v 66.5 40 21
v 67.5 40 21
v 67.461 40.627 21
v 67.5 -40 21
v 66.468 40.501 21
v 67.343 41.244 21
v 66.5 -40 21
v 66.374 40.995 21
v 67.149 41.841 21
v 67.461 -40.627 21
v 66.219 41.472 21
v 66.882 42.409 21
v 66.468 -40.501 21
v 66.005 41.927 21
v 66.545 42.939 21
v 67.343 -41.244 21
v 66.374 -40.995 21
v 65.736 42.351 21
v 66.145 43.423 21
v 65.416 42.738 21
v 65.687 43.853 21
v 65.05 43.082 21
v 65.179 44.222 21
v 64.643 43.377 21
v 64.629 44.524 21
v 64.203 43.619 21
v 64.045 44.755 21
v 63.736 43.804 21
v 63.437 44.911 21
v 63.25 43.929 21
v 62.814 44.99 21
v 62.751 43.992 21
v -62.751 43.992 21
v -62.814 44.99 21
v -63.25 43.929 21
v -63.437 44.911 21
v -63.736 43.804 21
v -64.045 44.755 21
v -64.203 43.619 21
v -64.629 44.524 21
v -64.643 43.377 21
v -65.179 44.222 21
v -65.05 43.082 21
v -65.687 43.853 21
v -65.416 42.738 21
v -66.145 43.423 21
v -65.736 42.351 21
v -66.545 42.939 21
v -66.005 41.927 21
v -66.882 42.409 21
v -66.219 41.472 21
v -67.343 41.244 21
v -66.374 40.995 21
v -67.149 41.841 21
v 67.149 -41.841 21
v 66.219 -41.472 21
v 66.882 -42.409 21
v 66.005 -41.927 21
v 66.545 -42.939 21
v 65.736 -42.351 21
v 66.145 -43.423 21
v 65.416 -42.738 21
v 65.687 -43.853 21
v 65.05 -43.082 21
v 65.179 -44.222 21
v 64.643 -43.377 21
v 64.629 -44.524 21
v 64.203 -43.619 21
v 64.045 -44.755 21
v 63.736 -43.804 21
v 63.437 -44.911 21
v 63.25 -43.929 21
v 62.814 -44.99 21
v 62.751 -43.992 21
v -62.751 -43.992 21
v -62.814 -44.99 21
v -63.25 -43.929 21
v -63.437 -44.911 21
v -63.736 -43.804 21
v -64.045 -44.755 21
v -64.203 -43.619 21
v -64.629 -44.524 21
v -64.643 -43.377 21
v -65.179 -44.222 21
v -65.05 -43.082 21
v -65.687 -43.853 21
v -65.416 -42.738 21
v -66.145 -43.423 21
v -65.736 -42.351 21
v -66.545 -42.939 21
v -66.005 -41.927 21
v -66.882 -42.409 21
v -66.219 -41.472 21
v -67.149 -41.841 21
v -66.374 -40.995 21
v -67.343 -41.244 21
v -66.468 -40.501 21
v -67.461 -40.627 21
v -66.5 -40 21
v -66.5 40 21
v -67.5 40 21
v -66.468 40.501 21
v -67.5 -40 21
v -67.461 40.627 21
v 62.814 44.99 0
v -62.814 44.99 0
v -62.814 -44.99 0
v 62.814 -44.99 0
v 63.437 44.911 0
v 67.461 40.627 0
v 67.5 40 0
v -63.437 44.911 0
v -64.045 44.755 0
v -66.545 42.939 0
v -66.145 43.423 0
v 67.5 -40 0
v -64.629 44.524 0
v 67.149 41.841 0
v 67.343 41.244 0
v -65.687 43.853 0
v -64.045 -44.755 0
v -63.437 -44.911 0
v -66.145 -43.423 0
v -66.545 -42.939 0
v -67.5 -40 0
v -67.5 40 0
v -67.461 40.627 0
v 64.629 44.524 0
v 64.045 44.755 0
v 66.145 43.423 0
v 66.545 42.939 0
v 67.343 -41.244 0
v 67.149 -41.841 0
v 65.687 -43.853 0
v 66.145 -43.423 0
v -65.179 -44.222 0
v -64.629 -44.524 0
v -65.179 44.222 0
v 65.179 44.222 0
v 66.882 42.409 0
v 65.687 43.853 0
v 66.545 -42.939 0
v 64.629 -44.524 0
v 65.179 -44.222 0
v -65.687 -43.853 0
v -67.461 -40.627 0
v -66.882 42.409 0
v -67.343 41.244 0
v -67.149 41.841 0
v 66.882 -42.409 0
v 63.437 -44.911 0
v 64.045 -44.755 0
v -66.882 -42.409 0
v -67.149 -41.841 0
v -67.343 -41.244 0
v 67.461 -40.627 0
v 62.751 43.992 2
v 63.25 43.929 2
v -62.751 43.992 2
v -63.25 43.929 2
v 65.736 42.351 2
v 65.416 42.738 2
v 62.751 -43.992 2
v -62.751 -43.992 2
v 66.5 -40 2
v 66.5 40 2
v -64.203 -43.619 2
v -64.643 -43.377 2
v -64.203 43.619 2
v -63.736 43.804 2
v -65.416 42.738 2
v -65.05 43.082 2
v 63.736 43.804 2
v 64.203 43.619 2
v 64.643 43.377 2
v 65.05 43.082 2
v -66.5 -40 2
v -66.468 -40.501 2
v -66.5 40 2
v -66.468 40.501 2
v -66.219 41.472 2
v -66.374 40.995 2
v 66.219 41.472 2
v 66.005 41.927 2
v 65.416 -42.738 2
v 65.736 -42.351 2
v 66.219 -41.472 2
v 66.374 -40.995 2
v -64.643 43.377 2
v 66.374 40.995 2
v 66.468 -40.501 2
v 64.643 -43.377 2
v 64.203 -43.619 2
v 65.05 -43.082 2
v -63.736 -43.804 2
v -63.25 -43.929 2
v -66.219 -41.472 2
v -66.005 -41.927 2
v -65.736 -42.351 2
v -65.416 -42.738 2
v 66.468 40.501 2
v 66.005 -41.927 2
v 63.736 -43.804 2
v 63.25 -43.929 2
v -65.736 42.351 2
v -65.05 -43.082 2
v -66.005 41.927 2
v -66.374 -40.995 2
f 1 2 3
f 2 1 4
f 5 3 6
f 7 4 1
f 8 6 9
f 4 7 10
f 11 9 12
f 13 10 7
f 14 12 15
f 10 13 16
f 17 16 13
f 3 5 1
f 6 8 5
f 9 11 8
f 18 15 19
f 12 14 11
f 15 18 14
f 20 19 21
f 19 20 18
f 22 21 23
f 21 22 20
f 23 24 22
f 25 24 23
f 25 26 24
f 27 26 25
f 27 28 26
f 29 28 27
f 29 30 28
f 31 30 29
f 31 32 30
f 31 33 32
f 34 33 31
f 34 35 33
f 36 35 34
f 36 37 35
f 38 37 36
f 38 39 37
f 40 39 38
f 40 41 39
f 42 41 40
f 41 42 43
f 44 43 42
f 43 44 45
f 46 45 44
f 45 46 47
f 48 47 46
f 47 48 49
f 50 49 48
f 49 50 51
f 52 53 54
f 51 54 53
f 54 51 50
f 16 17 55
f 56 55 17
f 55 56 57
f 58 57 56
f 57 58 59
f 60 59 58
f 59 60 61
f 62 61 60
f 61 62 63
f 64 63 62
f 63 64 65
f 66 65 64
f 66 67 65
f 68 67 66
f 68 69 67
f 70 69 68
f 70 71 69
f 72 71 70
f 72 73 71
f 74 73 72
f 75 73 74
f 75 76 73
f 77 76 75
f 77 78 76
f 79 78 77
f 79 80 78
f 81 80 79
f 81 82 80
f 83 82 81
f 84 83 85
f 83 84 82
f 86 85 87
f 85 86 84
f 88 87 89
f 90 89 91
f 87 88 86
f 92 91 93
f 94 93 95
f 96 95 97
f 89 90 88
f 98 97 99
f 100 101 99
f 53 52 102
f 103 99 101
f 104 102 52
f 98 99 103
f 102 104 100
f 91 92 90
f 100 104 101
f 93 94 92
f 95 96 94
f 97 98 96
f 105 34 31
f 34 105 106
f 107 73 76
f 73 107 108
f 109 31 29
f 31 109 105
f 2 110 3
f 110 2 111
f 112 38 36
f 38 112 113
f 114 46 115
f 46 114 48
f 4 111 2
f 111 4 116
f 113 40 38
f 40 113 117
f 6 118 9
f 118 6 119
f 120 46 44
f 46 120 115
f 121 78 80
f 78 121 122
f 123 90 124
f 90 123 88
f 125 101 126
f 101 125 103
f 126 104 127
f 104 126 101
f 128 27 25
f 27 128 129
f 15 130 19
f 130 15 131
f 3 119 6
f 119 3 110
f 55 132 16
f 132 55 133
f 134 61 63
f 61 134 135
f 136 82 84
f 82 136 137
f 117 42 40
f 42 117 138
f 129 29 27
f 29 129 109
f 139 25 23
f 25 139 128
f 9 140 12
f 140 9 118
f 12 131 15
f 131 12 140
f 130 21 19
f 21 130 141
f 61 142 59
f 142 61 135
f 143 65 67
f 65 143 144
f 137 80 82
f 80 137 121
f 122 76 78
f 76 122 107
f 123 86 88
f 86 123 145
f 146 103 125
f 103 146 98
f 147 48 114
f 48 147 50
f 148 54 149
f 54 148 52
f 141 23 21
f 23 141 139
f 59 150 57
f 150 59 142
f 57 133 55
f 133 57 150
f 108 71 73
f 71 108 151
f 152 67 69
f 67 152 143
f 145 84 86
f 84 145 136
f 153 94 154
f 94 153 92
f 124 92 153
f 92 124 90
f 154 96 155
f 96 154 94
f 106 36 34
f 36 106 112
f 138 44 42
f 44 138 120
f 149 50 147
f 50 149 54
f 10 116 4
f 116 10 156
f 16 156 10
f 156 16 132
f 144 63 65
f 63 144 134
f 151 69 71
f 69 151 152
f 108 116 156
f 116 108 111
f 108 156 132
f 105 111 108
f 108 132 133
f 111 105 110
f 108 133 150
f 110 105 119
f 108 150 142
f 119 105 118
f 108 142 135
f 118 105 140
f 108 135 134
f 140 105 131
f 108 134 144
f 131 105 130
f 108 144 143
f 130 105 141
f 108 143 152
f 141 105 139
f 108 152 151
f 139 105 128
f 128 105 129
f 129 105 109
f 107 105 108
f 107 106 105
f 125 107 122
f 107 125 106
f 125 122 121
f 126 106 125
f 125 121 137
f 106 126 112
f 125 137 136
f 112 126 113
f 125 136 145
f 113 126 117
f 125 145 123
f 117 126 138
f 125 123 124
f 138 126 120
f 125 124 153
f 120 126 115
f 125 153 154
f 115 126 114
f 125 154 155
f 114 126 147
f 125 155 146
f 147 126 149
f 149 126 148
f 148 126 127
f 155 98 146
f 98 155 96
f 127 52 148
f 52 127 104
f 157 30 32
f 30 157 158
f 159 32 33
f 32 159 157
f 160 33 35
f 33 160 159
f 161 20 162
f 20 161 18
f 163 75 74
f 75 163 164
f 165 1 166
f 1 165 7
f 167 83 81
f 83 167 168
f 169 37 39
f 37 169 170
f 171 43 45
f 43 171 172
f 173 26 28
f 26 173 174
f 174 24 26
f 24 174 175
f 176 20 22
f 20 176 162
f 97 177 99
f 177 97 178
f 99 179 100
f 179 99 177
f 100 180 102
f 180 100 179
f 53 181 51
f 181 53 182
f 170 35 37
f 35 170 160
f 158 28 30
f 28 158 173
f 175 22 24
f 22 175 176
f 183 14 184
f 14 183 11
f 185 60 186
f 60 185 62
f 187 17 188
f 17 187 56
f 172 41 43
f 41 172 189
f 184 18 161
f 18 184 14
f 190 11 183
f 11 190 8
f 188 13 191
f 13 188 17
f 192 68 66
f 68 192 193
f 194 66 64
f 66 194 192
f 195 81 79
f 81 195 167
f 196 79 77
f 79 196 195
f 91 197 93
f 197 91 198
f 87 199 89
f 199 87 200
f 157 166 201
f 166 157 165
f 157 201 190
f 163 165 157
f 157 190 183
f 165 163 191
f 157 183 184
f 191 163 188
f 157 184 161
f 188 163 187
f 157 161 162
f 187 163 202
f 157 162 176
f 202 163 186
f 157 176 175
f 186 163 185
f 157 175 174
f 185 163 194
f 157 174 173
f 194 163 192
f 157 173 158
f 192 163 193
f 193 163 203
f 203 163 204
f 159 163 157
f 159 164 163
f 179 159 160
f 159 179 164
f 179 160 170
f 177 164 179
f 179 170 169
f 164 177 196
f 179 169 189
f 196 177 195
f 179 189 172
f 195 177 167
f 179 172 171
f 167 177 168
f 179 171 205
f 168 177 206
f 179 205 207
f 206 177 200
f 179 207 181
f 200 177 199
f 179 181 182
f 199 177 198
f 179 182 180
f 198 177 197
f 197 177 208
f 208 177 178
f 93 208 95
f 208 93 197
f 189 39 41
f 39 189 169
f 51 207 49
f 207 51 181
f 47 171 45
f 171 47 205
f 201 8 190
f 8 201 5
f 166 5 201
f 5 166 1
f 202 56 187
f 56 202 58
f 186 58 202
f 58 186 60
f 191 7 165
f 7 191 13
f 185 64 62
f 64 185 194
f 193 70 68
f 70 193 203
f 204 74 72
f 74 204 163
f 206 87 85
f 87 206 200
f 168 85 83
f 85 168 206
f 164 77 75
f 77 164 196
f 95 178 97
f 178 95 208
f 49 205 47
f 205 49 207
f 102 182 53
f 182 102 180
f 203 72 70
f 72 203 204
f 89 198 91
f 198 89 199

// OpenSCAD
$fn = 50;


difference() {
	union() {
		hull() {
			translate(v = [-62.5000000000, 40.0000000000, 0]) {
				cylinder(h = 21, r = 5);
			}
			translate(v = [62.5000000000, 40.0000000000, 0]) {
				cylinder(h = 21, r = 5);
			}
			translate(v = [-62.5000000000, -40.0000000000, 0]) {
				cylinder(h = 21, r = 5);
			}
			translate(v = [62.5000000000, -40.0000000000, 0]) {
				cylinder(h = 21, r = 5);
			}
		}
	}
	union() {
		translate(v = [0, 0, 2]) {
			hull() {
				translate(v = [-62.5000000000, 40.0000000000, 0]) {
					cylinder(h = 19, r = 4);
				}
				translate(v = [62.5000000000, 40.0000000000, 0]) {
					cylinder(h = 19, r = 4);
				}
				translate(v = [-62.5000000000, -40.0000000000, 0]) {
					cylinder(h = 19, r = 4);
				}
				translate(v = [62.5000000000, -40.0000000000, 0]) {
					cylinder(h = 19, r = 4);
				}
			}
		}
	}
}
